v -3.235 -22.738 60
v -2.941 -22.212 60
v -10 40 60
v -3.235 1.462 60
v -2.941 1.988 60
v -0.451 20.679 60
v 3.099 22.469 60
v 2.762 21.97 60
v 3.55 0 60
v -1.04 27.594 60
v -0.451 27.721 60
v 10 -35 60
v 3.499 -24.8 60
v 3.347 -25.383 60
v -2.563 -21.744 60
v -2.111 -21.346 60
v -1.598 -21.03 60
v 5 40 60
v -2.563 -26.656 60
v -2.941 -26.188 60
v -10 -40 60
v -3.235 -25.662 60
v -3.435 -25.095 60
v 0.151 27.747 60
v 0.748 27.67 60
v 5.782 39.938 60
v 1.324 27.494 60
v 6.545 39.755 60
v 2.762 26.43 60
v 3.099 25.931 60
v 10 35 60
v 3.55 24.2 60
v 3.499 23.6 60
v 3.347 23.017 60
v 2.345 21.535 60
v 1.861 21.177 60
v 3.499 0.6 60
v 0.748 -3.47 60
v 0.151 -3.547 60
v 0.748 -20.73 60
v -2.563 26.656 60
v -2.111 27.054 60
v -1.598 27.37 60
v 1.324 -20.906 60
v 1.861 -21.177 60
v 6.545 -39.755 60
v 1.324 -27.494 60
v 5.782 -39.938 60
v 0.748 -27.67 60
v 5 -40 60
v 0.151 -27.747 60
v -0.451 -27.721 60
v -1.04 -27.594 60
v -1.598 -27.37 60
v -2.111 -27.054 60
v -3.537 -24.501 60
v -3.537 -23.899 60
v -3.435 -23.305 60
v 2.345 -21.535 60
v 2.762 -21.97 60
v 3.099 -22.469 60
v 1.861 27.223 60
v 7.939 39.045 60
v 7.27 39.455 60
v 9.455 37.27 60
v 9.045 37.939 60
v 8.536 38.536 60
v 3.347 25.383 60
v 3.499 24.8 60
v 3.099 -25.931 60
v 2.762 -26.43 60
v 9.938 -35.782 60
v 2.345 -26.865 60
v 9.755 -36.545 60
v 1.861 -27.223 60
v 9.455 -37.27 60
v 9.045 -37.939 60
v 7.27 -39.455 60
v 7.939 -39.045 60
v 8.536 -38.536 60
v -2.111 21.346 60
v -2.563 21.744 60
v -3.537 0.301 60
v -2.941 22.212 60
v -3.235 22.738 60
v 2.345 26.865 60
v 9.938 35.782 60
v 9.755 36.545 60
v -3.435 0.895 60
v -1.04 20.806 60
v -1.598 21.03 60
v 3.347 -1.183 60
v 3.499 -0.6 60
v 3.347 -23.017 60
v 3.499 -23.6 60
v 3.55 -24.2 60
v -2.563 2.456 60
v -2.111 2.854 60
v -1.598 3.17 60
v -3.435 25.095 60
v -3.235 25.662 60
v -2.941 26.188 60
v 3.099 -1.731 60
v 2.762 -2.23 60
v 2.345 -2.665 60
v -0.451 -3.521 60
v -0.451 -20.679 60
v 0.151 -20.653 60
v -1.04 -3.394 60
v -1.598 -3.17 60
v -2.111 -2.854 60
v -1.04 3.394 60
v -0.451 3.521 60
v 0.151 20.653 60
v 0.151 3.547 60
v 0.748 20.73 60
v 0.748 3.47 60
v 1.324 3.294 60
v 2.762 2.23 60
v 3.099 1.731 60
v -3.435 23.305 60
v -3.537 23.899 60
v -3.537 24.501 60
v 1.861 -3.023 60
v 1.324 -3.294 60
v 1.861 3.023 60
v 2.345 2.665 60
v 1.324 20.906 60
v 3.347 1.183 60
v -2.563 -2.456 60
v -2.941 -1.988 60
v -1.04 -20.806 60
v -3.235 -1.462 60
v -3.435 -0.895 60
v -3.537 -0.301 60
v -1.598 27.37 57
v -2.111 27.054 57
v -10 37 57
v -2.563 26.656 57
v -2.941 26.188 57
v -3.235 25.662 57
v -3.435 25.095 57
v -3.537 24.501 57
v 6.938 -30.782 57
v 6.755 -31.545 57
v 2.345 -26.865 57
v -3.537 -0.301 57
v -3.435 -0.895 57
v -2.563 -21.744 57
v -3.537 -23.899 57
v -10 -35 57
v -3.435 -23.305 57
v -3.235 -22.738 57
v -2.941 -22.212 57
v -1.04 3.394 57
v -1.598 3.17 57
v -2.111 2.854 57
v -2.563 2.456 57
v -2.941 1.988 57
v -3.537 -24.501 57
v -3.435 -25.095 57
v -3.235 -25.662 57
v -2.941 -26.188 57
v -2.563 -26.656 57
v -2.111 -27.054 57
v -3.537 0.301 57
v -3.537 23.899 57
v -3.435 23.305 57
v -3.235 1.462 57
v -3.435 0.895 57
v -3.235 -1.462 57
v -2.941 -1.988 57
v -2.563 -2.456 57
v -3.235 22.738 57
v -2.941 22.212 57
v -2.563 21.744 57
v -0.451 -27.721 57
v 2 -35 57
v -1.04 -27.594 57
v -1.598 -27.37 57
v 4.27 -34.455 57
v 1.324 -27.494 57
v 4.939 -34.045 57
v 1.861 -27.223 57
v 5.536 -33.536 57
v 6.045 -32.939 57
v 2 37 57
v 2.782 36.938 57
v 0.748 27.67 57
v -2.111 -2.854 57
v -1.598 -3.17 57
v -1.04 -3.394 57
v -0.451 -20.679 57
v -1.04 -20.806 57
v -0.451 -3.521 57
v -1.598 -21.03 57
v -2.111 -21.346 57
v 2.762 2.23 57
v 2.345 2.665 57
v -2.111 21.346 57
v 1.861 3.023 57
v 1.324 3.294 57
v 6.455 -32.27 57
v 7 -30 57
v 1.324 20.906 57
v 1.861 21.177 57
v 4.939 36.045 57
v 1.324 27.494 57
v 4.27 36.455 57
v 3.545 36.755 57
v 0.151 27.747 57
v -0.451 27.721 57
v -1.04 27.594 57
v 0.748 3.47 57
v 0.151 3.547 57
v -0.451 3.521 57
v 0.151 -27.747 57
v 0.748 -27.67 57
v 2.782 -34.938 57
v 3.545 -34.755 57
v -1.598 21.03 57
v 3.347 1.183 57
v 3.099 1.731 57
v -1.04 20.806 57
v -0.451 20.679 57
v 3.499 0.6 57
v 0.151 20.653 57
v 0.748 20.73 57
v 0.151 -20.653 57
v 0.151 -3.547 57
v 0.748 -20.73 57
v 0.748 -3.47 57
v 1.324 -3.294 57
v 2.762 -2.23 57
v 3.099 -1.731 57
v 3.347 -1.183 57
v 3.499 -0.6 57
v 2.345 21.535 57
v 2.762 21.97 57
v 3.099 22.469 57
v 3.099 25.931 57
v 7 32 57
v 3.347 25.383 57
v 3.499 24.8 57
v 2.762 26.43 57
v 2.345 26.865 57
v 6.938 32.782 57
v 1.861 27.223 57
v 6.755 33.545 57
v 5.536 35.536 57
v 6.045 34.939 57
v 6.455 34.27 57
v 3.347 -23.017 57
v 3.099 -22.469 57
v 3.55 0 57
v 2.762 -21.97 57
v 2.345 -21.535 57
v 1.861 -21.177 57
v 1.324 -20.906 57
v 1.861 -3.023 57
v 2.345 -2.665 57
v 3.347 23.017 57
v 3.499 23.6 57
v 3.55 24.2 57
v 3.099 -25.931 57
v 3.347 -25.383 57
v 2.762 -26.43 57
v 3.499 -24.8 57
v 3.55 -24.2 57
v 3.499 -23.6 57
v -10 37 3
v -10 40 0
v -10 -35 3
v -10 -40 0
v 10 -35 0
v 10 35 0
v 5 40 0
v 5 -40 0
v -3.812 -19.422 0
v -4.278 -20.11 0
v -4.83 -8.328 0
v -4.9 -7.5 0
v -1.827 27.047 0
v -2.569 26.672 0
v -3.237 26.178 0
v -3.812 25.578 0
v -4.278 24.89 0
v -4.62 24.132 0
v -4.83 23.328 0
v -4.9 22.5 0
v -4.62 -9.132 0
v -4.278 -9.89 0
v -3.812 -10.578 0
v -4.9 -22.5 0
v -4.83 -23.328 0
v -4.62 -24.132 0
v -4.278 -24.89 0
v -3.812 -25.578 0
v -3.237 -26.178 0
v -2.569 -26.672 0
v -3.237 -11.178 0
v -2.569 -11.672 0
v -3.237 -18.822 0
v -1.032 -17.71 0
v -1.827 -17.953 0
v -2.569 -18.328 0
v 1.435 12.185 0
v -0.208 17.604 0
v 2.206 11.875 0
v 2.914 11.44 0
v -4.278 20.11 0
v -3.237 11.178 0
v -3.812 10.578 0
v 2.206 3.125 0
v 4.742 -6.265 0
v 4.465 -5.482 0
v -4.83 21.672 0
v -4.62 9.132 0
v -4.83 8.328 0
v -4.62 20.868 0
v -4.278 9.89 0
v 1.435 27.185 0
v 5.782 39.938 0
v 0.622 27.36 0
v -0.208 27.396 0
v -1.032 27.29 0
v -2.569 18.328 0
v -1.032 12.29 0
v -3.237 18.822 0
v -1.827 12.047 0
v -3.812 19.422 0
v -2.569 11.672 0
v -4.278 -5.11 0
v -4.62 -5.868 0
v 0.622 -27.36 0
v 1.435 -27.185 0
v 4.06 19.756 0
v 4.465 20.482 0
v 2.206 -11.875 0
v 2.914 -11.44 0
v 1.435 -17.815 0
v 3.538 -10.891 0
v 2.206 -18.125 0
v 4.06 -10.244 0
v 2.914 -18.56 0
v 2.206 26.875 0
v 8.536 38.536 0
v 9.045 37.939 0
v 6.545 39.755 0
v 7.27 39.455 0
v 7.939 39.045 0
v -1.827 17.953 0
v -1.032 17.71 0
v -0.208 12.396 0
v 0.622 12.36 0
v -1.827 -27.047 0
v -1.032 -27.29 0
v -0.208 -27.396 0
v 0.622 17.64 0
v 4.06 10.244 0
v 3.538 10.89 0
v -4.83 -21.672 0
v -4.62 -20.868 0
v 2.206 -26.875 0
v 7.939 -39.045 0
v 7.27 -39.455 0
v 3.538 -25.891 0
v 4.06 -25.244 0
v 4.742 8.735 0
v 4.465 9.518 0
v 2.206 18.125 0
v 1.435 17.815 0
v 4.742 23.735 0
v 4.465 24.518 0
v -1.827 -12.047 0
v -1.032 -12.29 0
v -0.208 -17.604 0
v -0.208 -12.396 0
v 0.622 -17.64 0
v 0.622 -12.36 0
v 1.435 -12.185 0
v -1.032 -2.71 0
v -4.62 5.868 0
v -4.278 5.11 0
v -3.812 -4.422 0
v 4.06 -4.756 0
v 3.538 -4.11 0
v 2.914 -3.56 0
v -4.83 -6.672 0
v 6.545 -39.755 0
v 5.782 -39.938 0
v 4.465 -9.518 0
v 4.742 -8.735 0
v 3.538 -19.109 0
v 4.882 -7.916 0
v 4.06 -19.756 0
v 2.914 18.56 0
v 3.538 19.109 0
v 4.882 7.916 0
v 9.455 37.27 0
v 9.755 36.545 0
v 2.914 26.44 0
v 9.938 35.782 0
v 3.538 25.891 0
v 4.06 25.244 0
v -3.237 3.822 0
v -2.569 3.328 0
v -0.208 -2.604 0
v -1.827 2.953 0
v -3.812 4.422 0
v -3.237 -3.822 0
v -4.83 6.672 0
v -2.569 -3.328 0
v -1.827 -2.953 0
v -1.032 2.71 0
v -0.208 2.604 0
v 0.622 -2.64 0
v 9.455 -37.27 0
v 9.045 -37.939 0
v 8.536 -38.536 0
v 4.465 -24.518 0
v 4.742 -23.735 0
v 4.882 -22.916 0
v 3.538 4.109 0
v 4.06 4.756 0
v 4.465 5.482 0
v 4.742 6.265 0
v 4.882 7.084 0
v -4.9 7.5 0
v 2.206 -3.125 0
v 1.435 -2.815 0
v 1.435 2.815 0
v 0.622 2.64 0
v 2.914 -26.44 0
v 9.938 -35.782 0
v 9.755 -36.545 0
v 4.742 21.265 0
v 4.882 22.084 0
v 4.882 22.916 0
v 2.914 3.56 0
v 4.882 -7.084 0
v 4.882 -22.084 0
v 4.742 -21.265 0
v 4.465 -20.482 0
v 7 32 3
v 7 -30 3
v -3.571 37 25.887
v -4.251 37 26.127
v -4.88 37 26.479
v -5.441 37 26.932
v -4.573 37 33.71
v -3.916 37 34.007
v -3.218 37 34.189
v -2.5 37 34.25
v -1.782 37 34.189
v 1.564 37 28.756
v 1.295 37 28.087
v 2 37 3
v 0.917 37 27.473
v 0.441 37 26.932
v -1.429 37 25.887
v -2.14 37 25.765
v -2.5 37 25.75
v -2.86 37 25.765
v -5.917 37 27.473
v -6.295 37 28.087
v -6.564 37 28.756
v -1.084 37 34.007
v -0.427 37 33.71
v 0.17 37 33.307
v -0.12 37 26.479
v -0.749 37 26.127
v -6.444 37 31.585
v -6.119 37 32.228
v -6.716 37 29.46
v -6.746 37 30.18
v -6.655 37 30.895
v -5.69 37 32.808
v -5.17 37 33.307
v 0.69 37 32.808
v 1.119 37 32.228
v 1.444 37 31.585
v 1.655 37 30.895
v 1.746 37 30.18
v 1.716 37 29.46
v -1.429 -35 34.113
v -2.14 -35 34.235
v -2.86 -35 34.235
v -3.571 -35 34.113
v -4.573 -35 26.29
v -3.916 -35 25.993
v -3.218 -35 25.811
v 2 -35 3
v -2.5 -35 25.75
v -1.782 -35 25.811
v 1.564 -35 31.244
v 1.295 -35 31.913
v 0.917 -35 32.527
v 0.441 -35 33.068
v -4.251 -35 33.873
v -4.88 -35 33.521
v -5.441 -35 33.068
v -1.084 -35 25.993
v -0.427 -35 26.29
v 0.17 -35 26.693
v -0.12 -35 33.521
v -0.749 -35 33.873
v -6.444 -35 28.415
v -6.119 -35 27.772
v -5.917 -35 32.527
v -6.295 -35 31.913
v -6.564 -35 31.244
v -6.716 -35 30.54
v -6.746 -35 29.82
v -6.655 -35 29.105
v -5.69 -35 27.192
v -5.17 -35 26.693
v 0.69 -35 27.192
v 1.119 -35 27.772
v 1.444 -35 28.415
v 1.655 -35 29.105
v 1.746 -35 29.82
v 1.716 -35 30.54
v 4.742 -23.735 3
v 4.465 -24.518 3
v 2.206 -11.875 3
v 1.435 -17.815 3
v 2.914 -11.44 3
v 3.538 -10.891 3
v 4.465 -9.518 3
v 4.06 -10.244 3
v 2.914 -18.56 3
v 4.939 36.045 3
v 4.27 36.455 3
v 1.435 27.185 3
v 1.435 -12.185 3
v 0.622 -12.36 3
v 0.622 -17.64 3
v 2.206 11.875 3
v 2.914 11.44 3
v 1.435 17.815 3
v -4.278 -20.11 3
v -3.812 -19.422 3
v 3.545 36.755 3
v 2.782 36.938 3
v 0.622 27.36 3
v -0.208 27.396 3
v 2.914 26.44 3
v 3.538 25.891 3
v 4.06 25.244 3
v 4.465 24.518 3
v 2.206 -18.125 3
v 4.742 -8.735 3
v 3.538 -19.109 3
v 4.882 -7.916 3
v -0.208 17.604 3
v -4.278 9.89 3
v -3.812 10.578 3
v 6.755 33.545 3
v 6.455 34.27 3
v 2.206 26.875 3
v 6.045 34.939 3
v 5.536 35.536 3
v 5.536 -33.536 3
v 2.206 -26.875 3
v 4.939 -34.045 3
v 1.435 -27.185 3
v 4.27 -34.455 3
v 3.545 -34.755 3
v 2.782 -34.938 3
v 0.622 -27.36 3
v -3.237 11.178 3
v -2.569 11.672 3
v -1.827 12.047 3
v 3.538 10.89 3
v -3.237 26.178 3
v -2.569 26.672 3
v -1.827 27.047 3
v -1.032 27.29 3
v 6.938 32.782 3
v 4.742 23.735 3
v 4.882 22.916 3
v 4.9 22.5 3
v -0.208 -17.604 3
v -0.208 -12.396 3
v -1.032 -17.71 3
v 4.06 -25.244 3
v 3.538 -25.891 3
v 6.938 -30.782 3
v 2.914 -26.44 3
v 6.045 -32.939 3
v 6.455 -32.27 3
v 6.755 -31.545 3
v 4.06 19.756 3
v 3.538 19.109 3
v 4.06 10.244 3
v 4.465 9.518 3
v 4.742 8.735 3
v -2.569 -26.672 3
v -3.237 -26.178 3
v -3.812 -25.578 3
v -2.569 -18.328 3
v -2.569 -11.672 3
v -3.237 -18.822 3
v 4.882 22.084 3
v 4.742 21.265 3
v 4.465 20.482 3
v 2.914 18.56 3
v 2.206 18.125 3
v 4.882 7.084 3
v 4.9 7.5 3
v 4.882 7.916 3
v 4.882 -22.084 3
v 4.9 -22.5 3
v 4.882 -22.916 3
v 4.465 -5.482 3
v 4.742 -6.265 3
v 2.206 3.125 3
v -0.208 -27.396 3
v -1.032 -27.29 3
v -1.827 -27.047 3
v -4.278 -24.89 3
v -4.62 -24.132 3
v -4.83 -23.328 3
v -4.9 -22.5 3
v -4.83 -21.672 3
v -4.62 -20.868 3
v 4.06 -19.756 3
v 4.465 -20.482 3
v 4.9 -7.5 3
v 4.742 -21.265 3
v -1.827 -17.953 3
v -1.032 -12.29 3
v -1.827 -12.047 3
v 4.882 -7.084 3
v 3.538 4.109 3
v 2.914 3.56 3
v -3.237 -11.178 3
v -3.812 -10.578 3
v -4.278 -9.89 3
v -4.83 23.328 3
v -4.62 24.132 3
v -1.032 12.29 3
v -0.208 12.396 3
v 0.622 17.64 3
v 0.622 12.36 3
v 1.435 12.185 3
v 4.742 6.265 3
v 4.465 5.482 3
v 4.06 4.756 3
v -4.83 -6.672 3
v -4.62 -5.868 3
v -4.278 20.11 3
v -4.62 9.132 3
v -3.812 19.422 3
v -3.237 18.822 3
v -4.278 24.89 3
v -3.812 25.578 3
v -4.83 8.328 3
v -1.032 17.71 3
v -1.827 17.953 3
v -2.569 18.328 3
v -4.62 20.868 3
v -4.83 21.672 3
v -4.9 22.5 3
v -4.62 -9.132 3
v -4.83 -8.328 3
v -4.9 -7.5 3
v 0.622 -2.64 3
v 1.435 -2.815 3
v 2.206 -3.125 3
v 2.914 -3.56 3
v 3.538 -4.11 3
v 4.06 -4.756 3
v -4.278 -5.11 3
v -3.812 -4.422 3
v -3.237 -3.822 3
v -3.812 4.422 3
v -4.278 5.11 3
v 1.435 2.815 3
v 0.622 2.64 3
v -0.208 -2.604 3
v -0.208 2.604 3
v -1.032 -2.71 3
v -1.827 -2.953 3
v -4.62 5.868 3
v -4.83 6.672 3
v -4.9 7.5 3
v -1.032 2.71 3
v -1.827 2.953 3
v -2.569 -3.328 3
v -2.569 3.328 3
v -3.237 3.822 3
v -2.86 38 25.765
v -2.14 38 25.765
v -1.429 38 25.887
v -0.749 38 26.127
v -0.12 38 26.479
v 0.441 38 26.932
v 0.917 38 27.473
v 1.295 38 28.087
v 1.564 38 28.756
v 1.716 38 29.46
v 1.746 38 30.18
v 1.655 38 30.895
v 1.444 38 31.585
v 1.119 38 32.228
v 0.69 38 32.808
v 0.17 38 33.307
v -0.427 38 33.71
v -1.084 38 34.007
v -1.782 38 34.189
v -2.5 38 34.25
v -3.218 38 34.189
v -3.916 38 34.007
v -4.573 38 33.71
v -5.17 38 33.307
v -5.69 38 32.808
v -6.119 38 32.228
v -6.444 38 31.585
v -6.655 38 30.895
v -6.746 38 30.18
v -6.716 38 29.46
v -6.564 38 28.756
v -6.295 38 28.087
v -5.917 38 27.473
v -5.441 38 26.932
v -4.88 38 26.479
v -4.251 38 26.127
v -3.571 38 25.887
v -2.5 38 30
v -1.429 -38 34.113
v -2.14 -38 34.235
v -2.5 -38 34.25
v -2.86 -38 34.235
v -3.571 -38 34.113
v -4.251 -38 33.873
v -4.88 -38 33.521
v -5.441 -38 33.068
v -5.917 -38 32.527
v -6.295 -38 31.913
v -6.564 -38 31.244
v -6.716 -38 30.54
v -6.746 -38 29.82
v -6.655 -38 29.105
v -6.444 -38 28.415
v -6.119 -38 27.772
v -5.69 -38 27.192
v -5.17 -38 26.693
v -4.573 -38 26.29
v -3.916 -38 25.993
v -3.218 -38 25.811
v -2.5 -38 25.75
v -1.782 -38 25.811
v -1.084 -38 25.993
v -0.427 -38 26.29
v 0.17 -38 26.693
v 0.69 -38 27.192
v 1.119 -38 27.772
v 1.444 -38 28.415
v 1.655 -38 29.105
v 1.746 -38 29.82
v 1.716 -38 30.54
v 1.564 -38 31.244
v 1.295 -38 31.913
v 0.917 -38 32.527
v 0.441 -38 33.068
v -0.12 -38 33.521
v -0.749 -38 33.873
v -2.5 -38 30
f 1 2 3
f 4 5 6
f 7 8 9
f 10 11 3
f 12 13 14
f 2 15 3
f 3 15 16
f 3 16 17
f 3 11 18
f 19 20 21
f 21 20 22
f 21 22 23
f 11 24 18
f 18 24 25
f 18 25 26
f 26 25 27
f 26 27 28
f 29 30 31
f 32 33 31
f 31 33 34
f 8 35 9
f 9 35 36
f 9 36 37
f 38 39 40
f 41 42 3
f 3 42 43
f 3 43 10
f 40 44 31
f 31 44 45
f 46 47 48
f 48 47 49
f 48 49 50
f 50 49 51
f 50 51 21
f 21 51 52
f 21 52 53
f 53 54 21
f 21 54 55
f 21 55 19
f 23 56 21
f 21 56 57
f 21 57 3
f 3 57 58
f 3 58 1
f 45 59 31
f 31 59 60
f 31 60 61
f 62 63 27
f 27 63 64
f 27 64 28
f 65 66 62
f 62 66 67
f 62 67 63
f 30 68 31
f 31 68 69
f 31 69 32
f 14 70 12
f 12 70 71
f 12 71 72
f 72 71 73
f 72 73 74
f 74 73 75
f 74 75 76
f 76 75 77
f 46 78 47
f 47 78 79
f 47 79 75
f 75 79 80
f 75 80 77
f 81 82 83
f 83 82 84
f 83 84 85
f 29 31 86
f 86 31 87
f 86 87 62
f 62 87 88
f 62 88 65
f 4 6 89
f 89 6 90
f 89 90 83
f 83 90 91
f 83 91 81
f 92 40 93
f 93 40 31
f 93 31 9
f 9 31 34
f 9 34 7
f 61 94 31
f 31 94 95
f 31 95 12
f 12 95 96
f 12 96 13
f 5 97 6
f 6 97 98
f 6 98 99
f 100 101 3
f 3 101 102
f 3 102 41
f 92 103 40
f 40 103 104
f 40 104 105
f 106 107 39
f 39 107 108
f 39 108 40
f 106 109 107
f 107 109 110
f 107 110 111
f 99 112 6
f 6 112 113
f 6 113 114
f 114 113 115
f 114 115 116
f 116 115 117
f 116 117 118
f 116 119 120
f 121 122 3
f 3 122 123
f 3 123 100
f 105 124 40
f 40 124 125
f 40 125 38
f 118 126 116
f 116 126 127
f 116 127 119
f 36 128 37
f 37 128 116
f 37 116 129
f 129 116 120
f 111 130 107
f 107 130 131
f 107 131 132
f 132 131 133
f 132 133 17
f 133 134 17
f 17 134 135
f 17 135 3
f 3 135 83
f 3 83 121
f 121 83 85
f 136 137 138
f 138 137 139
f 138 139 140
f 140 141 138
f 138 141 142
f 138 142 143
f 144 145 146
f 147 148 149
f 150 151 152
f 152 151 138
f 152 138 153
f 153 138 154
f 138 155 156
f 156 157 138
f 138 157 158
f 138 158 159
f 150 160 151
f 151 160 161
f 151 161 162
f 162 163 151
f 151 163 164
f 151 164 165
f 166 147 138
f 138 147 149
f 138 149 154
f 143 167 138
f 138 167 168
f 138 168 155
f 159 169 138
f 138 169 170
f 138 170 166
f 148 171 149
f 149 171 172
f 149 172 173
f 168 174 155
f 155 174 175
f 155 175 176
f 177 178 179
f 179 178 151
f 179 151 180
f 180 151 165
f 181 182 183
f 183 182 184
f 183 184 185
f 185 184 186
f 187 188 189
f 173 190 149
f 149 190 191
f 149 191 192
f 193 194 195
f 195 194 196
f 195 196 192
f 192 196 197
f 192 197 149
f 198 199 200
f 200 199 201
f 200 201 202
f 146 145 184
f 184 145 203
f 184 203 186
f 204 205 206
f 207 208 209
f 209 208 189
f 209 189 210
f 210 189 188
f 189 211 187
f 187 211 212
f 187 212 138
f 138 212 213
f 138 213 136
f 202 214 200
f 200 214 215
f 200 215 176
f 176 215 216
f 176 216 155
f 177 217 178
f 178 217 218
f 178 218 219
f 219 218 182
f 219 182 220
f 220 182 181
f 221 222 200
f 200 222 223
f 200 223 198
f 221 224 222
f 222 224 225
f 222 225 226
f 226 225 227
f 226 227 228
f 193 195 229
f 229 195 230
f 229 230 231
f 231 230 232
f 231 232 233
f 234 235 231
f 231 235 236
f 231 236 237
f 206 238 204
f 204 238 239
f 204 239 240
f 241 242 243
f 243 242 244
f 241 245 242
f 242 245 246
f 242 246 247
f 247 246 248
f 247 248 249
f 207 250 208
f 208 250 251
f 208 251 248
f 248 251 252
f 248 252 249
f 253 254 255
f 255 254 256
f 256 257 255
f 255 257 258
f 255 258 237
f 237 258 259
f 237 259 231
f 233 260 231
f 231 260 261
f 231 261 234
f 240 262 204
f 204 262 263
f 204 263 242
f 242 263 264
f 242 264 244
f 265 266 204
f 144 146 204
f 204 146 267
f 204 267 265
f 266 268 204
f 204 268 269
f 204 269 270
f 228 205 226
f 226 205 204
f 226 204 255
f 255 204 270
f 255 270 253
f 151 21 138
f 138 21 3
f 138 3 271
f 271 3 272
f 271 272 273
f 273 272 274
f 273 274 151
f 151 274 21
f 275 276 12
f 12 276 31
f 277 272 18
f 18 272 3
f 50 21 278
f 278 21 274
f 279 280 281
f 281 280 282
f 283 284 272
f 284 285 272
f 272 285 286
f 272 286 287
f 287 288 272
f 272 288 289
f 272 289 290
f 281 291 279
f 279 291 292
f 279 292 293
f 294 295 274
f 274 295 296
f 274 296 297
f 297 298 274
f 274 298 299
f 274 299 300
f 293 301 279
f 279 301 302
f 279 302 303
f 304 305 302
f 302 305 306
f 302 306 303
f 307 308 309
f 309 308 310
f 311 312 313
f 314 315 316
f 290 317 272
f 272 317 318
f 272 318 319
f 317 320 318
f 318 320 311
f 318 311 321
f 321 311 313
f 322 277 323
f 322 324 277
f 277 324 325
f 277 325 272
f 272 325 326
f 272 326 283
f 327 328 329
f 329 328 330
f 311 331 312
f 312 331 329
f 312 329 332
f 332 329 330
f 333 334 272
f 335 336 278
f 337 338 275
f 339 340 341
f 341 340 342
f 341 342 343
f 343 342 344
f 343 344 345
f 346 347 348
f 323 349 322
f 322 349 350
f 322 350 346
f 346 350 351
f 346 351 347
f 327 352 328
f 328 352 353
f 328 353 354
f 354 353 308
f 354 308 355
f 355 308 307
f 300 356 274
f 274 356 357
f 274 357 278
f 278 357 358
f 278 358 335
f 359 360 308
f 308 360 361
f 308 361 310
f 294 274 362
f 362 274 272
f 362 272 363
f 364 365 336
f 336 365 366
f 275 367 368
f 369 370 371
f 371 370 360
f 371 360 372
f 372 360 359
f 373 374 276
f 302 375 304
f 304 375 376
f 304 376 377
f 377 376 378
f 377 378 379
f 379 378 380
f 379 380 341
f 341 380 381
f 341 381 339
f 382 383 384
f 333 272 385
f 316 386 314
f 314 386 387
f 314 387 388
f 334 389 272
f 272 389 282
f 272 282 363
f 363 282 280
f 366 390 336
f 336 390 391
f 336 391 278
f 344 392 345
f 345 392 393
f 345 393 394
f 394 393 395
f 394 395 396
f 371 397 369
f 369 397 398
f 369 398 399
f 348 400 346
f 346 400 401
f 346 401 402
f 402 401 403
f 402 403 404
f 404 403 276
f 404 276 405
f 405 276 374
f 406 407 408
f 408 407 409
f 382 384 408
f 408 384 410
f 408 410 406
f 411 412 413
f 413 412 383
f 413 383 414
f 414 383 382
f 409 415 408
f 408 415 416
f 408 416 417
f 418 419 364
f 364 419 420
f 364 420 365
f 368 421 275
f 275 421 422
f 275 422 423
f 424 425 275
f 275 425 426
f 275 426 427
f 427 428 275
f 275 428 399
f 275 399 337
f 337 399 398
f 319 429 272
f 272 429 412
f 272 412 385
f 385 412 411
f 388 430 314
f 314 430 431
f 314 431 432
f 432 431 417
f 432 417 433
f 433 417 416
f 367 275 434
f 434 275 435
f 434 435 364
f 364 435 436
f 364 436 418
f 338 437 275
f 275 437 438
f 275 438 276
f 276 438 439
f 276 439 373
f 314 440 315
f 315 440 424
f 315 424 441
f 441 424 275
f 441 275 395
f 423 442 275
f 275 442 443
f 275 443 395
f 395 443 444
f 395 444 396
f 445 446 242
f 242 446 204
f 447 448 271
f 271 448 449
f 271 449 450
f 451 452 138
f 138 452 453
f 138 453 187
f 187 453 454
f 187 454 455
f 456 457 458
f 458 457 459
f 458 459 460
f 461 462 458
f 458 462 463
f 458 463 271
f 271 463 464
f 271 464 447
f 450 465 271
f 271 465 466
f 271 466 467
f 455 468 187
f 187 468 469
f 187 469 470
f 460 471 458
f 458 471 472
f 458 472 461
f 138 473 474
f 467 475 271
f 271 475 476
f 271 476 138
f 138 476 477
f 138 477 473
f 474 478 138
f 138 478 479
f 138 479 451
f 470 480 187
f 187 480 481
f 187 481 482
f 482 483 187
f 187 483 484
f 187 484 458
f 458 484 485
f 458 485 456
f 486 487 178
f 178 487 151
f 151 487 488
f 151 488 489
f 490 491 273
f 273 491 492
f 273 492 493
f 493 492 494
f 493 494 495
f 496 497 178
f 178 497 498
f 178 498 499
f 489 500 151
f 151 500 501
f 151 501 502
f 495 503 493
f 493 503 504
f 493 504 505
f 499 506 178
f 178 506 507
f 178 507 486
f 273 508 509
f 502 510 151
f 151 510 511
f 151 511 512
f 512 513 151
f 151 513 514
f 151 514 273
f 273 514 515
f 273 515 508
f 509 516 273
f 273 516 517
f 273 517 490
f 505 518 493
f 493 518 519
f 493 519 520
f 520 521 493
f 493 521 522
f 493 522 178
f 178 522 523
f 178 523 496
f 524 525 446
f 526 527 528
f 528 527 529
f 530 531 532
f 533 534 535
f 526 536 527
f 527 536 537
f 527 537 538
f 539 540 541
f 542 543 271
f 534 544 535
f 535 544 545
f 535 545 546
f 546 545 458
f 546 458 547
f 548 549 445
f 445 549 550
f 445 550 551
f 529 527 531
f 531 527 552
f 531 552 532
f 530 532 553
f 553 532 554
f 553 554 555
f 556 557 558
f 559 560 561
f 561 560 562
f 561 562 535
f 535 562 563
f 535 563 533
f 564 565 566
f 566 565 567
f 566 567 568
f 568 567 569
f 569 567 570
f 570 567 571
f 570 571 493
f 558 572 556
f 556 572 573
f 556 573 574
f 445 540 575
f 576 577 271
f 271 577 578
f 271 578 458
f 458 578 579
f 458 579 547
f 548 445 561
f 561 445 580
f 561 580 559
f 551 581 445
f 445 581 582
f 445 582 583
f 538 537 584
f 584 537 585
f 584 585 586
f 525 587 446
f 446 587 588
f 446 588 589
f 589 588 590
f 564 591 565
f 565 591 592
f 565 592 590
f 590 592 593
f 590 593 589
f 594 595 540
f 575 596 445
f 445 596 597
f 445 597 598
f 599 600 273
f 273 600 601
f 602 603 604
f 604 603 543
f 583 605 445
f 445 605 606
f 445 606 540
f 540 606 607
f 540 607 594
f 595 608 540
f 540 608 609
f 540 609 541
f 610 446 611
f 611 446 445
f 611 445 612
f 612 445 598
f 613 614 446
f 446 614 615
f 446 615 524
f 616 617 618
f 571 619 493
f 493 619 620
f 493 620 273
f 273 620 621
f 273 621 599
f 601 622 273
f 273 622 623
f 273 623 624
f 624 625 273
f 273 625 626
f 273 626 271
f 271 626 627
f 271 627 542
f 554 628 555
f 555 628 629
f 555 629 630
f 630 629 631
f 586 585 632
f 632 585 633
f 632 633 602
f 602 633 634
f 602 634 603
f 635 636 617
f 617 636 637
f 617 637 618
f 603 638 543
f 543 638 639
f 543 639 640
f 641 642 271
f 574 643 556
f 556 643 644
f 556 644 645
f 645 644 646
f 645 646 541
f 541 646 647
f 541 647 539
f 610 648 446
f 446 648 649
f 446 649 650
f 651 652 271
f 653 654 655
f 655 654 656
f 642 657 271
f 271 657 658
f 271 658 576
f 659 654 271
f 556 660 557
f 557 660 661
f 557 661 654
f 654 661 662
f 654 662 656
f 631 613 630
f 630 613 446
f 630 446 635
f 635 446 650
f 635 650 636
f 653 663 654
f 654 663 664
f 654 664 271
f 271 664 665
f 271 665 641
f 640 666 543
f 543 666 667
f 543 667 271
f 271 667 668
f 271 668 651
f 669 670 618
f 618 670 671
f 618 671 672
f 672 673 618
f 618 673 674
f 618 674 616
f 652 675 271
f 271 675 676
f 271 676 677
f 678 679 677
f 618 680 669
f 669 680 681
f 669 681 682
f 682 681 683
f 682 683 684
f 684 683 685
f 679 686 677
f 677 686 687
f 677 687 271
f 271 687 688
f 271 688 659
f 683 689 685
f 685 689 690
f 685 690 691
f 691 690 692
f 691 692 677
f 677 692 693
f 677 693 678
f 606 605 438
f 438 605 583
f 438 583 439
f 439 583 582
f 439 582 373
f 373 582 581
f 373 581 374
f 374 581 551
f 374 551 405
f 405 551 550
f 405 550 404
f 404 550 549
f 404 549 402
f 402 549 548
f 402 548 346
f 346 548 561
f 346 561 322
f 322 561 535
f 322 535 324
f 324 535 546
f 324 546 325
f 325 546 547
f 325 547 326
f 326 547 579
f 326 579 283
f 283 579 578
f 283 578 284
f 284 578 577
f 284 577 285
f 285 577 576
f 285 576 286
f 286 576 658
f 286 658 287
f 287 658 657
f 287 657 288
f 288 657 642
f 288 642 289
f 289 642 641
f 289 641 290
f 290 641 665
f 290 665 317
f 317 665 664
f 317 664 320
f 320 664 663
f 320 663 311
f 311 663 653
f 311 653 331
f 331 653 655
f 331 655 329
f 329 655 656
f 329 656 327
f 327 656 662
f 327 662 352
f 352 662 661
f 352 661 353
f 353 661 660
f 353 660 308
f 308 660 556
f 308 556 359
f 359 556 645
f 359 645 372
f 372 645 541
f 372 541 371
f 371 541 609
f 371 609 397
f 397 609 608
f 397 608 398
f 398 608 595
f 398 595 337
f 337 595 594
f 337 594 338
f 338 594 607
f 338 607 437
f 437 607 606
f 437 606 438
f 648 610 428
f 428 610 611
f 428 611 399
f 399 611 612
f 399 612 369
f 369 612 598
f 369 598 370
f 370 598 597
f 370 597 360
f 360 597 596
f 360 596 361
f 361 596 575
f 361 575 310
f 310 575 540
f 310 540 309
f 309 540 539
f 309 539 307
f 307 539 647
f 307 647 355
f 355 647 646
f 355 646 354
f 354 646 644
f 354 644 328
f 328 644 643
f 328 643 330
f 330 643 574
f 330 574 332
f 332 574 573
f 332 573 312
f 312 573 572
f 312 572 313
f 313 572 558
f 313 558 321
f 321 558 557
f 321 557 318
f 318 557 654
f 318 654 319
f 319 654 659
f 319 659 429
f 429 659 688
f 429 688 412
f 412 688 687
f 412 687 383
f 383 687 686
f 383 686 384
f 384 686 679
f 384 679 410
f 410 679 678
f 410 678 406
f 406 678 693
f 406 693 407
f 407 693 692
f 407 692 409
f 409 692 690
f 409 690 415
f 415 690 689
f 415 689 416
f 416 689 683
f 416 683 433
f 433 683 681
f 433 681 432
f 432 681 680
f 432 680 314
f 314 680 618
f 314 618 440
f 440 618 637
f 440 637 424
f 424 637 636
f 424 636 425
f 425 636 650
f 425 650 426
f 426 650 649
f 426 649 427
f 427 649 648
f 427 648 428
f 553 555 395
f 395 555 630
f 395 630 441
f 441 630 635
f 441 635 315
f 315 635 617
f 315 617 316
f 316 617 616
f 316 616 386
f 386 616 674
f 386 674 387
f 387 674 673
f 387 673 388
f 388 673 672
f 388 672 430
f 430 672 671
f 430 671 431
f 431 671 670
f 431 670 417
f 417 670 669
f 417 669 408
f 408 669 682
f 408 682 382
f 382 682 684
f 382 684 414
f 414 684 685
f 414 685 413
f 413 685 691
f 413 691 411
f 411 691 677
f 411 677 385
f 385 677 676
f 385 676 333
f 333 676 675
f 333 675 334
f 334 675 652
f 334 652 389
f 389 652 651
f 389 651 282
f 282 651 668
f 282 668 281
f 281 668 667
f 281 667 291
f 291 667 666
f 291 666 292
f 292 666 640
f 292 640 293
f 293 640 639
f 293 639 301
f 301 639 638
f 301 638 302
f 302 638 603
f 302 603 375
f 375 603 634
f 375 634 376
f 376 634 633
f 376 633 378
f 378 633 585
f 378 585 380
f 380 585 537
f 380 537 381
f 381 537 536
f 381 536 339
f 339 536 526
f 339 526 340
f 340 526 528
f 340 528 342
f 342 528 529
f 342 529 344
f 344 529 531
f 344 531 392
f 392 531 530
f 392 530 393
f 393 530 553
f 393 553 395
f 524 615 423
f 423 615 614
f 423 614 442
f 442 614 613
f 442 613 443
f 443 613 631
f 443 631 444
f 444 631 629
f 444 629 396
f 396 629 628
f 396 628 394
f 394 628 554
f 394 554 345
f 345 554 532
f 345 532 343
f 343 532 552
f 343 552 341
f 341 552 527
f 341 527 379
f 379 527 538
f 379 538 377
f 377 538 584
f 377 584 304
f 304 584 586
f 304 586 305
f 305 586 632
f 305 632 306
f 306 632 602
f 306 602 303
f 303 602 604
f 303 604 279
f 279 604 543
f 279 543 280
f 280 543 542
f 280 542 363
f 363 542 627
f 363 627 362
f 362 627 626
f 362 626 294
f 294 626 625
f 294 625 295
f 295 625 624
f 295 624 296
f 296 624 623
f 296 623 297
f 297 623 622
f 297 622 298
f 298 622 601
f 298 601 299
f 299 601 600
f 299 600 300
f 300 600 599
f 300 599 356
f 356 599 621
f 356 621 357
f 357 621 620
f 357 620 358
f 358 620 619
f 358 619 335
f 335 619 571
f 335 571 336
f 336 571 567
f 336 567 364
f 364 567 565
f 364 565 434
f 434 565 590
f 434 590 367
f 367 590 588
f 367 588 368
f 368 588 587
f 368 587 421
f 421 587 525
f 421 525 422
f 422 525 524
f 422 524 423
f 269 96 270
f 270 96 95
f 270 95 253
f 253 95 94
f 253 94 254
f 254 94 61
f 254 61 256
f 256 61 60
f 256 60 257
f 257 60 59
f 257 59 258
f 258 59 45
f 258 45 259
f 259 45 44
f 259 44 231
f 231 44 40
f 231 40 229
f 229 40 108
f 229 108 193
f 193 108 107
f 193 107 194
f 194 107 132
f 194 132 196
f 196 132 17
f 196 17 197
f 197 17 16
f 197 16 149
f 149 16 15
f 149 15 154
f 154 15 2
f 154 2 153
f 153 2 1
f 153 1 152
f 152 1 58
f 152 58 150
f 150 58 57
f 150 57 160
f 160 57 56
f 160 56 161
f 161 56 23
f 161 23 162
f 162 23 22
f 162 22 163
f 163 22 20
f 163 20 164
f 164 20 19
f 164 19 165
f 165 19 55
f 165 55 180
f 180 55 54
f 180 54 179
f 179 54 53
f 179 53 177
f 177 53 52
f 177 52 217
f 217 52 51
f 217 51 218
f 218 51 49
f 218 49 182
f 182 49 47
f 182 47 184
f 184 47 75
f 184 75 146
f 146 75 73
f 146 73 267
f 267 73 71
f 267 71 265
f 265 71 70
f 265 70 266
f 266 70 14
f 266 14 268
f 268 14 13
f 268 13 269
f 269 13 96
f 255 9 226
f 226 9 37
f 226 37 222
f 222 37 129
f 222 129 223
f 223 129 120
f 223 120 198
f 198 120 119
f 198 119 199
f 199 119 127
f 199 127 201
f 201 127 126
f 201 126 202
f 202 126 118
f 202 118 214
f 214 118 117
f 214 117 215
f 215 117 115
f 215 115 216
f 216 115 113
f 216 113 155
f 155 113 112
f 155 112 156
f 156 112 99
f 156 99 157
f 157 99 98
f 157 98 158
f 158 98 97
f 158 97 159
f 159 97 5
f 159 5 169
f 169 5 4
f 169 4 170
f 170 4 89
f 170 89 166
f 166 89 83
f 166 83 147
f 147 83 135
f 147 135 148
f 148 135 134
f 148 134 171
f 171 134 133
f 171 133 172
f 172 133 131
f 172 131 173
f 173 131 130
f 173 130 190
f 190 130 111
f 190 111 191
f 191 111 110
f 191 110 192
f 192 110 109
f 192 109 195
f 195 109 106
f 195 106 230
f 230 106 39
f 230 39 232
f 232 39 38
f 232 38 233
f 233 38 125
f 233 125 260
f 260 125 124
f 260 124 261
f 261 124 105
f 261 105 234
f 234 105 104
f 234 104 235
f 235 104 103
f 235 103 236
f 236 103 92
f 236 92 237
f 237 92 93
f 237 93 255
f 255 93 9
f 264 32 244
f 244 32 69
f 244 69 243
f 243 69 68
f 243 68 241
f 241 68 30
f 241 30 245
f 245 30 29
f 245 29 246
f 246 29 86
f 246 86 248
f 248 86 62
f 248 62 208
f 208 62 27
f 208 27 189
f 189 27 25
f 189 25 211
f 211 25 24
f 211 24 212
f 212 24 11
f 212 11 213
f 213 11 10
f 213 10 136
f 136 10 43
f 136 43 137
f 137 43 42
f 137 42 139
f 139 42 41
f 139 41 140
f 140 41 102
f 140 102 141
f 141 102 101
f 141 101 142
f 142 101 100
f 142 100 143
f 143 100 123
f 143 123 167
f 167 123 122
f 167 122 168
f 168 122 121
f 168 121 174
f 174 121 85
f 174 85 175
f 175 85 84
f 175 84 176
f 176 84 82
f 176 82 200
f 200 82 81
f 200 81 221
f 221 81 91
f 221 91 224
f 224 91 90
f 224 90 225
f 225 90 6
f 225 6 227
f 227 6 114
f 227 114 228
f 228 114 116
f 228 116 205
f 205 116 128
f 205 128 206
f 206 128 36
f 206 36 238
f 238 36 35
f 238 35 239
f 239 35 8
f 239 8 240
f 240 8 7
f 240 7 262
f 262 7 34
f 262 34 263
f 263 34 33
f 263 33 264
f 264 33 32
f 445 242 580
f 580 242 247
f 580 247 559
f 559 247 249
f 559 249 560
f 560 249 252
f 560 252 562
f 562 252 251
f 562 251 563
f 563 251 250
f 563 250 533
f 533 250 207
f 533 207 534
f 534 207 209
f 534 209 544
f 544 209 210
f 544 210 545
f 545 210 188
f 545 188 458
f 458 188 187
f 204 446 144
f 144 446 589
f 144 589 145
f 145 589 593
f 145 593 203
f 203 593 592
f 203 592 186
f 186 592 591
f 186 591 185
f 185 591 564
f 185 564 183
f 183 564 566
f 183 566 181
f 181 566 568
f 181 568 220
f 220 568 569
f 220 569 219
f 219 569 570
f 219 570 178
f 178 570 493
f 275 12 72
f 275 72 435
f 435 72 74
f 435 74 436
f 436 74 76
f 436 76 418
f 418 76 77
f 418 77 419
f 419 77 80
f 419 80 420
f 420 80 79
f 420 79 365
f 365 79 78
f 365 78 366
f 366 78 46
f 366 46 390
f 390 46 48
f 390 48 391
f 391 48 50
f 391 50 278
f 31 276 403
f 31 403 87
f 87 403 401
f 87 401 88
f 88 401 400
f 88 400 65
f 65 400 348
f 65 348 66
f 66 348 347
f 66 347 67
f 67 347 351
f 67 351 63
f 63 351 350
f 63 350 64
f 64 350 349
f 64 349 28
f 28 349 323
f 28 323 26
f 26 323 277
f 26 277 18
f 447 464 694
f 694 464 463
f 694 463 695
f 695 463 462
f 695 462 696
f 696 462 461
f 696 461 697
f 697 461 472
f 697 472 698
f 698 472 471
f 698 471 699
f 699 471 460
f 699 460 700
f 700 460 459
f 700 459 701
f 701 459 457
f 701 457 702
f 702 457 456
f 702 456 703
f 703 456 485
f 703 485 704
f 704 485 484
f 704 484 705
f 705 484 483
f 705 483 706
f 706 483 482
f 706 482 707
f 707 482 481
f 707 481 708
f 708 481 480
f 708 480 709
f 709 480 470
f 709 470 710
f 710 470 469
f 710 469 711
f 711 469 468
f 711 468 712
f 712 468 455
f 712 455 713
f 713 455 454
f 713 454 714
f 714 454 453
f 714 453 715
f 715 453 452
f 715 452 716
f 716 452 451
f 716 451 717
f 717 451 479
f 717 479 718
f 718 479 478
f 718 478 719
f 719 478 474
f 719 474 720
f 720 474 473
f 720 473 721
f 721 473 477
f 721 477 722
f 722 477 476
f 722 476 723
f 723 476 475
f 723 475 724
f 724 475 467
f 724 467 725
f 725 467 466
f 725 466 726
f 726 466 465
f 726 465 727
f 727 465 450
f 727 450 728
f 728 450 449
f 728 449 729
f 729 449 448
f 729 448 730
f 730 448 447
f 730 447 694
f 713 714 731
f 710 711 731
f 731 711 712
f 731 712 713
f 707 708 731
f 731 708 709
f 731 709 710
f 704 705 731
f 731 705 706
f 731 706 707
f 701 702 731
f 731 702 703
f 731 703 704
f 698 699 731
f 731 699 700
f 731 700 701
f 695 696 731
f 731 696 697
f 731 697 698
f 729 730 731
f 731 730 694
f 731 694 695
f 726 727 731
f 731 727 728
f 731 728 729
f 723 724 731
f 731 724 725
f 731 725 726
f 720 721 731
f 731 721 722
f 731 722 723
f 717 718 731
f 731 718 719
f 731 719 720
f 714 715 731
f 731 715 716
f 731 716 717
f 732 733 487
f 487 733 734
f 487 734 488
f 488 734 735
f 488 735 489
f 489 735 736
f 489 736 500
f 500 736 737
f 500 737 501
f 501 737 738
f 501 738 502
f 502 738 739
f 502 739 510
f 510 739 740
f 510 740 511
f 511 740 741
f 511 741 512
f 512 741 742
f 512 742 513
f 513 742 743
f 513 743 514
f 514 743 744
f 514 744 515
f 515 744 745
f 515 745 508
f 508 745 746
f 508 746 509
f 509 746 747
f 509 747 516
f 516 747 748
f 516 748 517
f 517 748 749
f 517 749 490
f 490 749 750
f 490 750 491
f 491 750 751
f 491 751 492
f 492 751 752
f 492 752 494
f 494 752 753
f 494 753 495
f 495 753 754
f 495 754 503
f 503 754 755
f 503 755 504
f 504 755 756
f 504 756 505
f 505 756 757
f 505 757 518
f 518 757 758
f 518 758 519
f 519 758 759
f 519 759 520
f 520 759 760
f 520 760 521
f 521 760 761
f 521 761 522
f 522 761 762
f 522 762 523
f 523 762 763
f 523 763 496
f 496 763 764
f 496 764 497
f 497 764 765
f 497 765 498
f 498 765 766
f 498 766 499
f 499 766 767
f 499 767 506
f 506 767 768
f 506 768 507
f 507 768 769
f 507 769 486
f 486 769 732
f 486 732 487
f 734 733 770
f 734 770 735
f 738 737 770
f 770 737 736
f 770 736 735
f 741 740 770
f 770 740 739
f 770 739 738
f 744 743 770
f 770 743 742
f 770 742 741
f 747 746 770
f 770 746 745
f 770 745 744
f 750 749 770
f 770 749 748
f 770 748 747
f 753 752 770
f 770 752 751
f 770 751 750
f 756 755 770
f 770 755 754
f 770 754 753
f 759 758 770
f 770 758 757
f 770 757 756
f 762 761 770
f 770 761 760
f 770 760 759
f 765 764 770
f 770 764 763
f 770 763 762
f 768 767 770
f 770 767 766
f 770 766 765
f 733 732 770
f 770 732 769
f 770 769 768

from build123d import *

# Parameters (mm, degrees)
SKETCH1_W                                   = 80
SKETCH1_H                                   = 20
BOSS_EXTRUDE1_DEPTH                         = 60
F_2_MM_TOP_BOT_3_MM_SIDE_T                  = -3
F_2_MM_TOP_BOT_3_MM_SIDE_THICKNESS_3_FACE_W = 54
F_2_MM_TOP_BOT_3_MM_SIDE_THICKNESS_3_FACE_H = 17
F_2_MM_TOP_BOT_3_MM_SIDE_THICKNESS_3_DEPTH  = 2
CUT_EXTRUDE1_DEPTH                          = 3
SKETCH4_R                                   = 3.55
CUT_EXTRUDE3_DEPTH                          = 10
F_5_MM_RADIUS_R                             = 5
F_8_5_START                                 = -2
SKETCH7_R                                   = 4.25
F_8_5_MM_HOLD_OFFSET_2_MM_DEPTH             = 3.2


with BuildPart() as part:
    # Sketch1 → Boss-Extrude1 (new body)
    with BuildSketch(Plane(origin=(0, 0, 0), x_dir=(0, 1, 0), z_dir=(0, 0, 1))):
        Rectangle(SKETCH1_W, SKETCH1_H)
    extrude(amount=BOSS_EXTRUDE1_DEPTH)

    # 2 mm top/bot 3 mm side
    f_2_mm_top_bot_3_mm_side_openings = [part.faces().sort_by_distance(p)[0] for p in [
        (-10, 0, 30),
    ]]
    offset(amount=F_2_MM_TOP_BOT_3_MM_SIDE_T, openings=f_2_mm_top_bot_3_mm_side_openings, kind=Kind.INTERSECTION)

    # 2 mm top/bot 3 mm side thickness 3 face (on inner face of the shell) → 2 mm top/bot 3 mm side thickness 3 (add)
    with BuildSketch(Plane(origin=(-1.5, -37, 30), x_dir=(0, 0, -1), z_dir=(0, -1, 0))):
        Rectangle(F_2_MM_TOP_BOT_3_MM_SIDE_THICKNESS_3_FACE_W, F_2_MM_TOP_BOT_3_MM_SIDE_THICKNESS_3_FACE_H)
    extrude(amount=-F_2_MM_TOP_BOT_3_MM_SIDE_THICKNESS_3_DEPTH)

    # Sketch3 → Cut-Extrude1 (cut)
    with BuildSketch(Plane(origin=(0, 0, 0), x_dir=(1, 0, 0), z_dir=(0, 0, -1))):
        with BuildLine():
            ThreePointArc((4.9, 22.5), (3.464823228, 25.964823228), (0, 27.4))
            Line((0, 27.4), (0, 17.6))
            ThreePointArc((0, 17.6), (3.464823228, 19.035176772), (4.9, 22.5))
        make_face()
        with BuildLine():
            Line((0, 17.6), (0, 27.4))
            ThreePointArc((0, 27.4), (-4.9, 22.5), (0, 17.6))
        make_face()
        with BuildLine():
            ThreePointArc((4.9, 7.5), (3.464823228, 10.964823228), (0, 12.4))
            Line((0, 12.4), (0, 2.6))
            ThreePointArc((0, 2.6), (3.464823228, 4.035176772), (4.9, 7.5))
        make_face()
        with BuildLine():
            Line((0, 2.6), (0, 12.4))
            ThreePointArc((0, 12.4), (-4.9, 7.5), (0, 2.6))
        make_face()
        with BuildLine():
            ThreePointArc((4.9, -7.5), (3.464823228, -4.035176772), (0, -2.6))
            Line((0, -2.6), (0, -12.4))
            ThreePointArc((0, -12.4), (3.464823228, -10.964823228), (4.9, -7.5))
        make_face()
        with BuildLine():
            Line((0, -12.4), (0, -2.6))
            ThreePointArc((0, -2.6), (-4.9, -7.5), (0, -12.4))
        make_face()
        with BuildLine():
            ThreePointArc((4.9, -22.5), (3.464823228, -19.035176772), (0, -17.6))
            Line((0, -17.6), (0, -27.4))
            ThreePointArc((0, -27.4), (3.464823228, -25.964823228), (4.9, -22.5))
        make_face()
        with BuildLine():
            Line((0, -27.4), (0, -17.6))
            ThreePointArc((0, -17.6), (-4.9, -22.5), (0, -27.4))
        make_face()
    extrude(amount=-CUT_EXTRUDE1_DEPTH, mode=Mode.SUBTRACT)

    # Sketch4 → Cut-Extrude3 (cut)
    with BuildSketch(Plane.XY.offset(60)):
        with Locations((0, 24.2)):
            Circle(SKETCH4_R)
        Circle(SKETCH4_R)
        with Locations((0, -24.2)):
            Circle(SKETCH4_R)
    extrude(amount=-CUT_EXTRUDE3_DEPTH, mode=Mode.SUBTRACT)

    # 5 mm radius
    f_5_mm_radius_edges = [part.edges().sort_by_distance(p)[0] for p in [
        (7, -35, 30),
        (7, 37, 30),
        (10, -40, 30),
        (10, 40, 30),
    ]]
    fillet(f_5_mm_radius_edges, radius=F_5_MM_RADIUS_R)

    # Sketch7 → 8.5 mm hold offset 2 mm (cut)
    with BuildSketch(Plane(origin=(0, 40, 0), x_dir=(-1, 0, 0), z_dir=(0, 1, 0)).offset(F_8_5_START)):
        with Locations(Location((2.5, 30, 0), (0, 0, 90))):
            Circle(SKETCH7_R)
    f_8_5_mm_hold_offset_2_mm = extrude(amount=-F_8_5_MM_HOLD_OFFSET_2_MM_DEPTH, mode=Mode.SUBTRACT)

    # Mirror1: 8.5 mm hold offset 2 mm across plane
    add(f_8_5_mm_hold_offset_2_mm.mirror(Plane.ZX), mode=Mode.SUBTRACT)


solid = part.part
